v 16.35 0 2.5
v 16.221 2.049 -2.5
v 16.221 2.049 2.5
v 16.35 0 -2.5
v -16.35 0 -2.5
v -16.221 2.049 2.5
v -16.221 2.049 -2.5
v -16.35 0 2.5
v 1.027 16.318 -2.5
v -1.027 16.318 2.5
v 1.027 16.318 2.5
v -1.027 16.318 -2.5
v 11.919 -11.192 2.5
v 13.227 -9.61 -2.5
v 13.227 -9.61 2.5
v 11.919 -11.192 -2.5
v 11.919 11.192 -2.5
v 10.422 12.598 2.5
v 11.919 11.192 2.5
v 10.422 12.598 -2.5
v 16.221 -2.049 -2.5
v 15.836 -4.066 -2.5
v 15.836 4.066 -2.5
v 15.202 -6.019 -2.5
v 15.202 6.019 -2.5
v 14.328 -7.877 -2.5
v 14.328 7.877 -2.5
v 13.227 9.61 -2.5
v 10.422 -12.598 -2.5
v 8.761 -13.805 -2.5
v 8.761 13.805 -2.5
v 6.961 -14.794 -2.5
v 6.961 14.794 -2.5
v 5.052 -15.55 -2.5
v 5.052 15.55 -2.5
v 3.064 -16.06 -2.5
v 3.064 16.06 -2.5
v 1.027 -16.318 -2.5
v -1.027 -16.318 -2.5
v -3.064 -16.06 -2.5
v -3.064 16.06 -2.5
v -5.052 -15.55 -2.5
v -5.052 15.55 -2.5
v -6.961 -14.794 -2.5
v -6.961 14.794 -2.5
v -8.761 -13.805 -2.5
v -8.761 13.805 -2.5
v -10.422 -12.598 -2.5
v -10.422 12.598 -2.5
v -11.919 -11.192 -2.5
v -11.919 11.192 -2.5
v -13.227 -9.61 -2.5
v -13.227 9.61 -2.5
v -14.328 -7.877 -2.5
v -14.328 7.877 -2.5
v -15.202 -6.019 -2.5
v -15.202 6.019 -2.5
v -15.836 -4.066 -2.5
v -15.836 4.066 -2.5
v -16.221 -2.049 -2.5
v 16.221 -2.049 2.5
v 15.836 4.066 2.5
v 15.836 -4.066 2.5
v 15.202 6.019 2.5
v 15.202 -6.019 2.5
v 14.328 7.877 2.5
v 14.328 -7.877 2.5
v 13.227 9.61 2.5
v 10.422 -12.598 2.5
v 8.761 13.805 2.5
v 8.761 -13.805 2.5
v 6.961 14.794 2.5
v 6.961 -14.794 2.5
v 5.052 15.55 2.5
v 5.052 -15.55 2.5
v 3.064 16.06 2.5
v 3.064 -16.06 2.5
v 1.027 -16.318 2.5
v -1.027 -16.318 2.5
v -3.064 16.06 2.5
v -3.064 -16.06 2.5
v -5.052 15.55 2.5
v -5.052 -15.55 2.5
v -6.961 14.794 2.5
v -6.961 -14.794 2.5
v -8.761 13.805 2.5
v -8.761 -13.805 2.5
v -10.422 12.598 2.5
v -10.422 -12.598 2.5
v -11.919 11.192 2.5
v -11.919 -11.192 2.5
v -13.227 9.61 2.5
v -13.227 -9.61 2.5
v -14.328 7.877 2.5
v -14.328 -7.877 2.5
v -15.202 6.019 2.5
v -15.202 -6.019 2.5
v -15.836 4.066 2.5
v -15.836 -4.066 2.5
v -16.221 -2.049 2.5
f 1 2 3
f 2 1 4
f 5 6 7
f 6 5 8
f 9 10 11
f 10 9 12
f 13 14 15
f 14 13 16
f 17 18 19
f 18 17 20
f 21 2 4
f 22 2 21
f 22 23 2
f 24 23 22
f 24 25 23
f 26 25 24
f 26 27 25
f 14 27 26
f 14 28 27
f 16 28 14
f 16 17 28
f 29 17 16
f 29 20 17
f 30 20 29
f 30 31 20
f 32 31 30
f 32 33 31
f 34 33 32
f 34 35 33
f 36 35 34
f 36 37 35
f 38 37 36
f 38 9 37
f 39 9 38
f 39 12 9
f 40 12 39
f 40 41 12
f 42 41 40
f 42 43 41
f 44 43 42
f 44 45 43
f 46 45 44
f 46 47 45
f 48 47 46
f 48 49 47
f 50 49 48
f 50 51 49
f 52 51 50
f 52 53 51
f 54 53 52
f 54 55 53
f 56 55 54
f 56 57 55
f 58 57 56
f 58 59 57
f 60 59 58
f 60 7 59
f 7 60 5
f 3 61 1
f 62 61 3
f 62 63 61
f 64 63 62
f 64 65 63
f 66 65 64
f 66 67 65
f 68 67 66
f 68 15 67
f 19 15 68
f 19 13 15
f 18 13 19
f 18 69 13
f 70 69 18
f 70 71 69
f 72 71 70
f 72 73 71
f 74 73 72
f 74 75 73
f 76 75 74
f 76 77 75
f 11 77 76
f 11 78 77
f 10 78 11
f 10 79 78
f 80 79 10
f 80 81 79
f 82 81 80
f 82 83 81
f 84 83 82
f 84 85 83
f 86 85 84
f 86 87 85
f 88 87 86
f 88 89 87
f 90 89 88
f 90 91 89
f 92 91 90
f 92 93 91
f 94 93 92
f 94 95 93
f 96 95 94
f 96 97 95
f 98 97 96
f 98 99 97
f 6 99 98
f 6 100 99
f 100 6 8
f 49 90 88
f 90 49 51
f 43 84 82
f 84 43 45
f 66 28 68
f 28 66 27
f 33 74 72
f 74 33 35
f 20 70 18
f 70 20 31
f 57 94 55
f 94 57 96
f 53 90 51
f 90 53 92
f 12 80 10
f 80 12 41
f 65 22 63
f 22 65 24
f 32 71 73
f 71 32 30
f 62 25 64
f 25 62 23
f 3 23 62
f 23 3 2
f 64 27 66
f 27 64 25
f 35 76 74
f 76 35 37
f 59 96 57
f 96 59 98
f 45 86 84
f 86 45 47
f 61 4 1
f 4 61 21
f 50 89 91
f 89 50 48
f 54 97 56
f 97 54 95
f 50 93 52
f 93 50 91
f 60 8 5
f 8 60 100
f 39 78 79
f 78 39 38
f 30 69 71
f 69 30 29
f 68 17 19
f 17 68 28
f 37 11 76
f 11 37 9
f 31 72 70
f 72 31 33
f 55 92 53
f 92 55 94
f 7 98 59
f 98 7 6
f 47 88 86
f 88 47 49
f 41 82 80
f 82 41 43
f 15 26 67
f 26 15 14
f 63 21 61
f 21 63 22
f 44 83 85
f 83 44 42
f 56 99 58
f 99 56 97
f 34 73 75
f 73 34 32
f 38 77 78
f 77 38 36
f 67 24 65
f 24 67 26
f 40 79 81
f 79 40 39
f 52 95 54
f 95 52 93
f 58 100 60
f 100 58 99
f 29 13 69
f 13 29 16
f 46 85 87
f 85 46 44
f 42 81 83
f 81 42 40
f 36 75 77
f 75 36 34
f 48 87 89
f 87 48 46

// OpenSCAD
$fn = 50;


difference() {
	union() {
		translate(v = [0, 0, -2.5000000000]) {
			cylinder(h = 5, r = 16.3500000000);
		}
	}
	union() {
		translate(v = [0, 0, -100.0000000000]) {
			cylinder(h = 200, r = 0);
		}
	}
}
